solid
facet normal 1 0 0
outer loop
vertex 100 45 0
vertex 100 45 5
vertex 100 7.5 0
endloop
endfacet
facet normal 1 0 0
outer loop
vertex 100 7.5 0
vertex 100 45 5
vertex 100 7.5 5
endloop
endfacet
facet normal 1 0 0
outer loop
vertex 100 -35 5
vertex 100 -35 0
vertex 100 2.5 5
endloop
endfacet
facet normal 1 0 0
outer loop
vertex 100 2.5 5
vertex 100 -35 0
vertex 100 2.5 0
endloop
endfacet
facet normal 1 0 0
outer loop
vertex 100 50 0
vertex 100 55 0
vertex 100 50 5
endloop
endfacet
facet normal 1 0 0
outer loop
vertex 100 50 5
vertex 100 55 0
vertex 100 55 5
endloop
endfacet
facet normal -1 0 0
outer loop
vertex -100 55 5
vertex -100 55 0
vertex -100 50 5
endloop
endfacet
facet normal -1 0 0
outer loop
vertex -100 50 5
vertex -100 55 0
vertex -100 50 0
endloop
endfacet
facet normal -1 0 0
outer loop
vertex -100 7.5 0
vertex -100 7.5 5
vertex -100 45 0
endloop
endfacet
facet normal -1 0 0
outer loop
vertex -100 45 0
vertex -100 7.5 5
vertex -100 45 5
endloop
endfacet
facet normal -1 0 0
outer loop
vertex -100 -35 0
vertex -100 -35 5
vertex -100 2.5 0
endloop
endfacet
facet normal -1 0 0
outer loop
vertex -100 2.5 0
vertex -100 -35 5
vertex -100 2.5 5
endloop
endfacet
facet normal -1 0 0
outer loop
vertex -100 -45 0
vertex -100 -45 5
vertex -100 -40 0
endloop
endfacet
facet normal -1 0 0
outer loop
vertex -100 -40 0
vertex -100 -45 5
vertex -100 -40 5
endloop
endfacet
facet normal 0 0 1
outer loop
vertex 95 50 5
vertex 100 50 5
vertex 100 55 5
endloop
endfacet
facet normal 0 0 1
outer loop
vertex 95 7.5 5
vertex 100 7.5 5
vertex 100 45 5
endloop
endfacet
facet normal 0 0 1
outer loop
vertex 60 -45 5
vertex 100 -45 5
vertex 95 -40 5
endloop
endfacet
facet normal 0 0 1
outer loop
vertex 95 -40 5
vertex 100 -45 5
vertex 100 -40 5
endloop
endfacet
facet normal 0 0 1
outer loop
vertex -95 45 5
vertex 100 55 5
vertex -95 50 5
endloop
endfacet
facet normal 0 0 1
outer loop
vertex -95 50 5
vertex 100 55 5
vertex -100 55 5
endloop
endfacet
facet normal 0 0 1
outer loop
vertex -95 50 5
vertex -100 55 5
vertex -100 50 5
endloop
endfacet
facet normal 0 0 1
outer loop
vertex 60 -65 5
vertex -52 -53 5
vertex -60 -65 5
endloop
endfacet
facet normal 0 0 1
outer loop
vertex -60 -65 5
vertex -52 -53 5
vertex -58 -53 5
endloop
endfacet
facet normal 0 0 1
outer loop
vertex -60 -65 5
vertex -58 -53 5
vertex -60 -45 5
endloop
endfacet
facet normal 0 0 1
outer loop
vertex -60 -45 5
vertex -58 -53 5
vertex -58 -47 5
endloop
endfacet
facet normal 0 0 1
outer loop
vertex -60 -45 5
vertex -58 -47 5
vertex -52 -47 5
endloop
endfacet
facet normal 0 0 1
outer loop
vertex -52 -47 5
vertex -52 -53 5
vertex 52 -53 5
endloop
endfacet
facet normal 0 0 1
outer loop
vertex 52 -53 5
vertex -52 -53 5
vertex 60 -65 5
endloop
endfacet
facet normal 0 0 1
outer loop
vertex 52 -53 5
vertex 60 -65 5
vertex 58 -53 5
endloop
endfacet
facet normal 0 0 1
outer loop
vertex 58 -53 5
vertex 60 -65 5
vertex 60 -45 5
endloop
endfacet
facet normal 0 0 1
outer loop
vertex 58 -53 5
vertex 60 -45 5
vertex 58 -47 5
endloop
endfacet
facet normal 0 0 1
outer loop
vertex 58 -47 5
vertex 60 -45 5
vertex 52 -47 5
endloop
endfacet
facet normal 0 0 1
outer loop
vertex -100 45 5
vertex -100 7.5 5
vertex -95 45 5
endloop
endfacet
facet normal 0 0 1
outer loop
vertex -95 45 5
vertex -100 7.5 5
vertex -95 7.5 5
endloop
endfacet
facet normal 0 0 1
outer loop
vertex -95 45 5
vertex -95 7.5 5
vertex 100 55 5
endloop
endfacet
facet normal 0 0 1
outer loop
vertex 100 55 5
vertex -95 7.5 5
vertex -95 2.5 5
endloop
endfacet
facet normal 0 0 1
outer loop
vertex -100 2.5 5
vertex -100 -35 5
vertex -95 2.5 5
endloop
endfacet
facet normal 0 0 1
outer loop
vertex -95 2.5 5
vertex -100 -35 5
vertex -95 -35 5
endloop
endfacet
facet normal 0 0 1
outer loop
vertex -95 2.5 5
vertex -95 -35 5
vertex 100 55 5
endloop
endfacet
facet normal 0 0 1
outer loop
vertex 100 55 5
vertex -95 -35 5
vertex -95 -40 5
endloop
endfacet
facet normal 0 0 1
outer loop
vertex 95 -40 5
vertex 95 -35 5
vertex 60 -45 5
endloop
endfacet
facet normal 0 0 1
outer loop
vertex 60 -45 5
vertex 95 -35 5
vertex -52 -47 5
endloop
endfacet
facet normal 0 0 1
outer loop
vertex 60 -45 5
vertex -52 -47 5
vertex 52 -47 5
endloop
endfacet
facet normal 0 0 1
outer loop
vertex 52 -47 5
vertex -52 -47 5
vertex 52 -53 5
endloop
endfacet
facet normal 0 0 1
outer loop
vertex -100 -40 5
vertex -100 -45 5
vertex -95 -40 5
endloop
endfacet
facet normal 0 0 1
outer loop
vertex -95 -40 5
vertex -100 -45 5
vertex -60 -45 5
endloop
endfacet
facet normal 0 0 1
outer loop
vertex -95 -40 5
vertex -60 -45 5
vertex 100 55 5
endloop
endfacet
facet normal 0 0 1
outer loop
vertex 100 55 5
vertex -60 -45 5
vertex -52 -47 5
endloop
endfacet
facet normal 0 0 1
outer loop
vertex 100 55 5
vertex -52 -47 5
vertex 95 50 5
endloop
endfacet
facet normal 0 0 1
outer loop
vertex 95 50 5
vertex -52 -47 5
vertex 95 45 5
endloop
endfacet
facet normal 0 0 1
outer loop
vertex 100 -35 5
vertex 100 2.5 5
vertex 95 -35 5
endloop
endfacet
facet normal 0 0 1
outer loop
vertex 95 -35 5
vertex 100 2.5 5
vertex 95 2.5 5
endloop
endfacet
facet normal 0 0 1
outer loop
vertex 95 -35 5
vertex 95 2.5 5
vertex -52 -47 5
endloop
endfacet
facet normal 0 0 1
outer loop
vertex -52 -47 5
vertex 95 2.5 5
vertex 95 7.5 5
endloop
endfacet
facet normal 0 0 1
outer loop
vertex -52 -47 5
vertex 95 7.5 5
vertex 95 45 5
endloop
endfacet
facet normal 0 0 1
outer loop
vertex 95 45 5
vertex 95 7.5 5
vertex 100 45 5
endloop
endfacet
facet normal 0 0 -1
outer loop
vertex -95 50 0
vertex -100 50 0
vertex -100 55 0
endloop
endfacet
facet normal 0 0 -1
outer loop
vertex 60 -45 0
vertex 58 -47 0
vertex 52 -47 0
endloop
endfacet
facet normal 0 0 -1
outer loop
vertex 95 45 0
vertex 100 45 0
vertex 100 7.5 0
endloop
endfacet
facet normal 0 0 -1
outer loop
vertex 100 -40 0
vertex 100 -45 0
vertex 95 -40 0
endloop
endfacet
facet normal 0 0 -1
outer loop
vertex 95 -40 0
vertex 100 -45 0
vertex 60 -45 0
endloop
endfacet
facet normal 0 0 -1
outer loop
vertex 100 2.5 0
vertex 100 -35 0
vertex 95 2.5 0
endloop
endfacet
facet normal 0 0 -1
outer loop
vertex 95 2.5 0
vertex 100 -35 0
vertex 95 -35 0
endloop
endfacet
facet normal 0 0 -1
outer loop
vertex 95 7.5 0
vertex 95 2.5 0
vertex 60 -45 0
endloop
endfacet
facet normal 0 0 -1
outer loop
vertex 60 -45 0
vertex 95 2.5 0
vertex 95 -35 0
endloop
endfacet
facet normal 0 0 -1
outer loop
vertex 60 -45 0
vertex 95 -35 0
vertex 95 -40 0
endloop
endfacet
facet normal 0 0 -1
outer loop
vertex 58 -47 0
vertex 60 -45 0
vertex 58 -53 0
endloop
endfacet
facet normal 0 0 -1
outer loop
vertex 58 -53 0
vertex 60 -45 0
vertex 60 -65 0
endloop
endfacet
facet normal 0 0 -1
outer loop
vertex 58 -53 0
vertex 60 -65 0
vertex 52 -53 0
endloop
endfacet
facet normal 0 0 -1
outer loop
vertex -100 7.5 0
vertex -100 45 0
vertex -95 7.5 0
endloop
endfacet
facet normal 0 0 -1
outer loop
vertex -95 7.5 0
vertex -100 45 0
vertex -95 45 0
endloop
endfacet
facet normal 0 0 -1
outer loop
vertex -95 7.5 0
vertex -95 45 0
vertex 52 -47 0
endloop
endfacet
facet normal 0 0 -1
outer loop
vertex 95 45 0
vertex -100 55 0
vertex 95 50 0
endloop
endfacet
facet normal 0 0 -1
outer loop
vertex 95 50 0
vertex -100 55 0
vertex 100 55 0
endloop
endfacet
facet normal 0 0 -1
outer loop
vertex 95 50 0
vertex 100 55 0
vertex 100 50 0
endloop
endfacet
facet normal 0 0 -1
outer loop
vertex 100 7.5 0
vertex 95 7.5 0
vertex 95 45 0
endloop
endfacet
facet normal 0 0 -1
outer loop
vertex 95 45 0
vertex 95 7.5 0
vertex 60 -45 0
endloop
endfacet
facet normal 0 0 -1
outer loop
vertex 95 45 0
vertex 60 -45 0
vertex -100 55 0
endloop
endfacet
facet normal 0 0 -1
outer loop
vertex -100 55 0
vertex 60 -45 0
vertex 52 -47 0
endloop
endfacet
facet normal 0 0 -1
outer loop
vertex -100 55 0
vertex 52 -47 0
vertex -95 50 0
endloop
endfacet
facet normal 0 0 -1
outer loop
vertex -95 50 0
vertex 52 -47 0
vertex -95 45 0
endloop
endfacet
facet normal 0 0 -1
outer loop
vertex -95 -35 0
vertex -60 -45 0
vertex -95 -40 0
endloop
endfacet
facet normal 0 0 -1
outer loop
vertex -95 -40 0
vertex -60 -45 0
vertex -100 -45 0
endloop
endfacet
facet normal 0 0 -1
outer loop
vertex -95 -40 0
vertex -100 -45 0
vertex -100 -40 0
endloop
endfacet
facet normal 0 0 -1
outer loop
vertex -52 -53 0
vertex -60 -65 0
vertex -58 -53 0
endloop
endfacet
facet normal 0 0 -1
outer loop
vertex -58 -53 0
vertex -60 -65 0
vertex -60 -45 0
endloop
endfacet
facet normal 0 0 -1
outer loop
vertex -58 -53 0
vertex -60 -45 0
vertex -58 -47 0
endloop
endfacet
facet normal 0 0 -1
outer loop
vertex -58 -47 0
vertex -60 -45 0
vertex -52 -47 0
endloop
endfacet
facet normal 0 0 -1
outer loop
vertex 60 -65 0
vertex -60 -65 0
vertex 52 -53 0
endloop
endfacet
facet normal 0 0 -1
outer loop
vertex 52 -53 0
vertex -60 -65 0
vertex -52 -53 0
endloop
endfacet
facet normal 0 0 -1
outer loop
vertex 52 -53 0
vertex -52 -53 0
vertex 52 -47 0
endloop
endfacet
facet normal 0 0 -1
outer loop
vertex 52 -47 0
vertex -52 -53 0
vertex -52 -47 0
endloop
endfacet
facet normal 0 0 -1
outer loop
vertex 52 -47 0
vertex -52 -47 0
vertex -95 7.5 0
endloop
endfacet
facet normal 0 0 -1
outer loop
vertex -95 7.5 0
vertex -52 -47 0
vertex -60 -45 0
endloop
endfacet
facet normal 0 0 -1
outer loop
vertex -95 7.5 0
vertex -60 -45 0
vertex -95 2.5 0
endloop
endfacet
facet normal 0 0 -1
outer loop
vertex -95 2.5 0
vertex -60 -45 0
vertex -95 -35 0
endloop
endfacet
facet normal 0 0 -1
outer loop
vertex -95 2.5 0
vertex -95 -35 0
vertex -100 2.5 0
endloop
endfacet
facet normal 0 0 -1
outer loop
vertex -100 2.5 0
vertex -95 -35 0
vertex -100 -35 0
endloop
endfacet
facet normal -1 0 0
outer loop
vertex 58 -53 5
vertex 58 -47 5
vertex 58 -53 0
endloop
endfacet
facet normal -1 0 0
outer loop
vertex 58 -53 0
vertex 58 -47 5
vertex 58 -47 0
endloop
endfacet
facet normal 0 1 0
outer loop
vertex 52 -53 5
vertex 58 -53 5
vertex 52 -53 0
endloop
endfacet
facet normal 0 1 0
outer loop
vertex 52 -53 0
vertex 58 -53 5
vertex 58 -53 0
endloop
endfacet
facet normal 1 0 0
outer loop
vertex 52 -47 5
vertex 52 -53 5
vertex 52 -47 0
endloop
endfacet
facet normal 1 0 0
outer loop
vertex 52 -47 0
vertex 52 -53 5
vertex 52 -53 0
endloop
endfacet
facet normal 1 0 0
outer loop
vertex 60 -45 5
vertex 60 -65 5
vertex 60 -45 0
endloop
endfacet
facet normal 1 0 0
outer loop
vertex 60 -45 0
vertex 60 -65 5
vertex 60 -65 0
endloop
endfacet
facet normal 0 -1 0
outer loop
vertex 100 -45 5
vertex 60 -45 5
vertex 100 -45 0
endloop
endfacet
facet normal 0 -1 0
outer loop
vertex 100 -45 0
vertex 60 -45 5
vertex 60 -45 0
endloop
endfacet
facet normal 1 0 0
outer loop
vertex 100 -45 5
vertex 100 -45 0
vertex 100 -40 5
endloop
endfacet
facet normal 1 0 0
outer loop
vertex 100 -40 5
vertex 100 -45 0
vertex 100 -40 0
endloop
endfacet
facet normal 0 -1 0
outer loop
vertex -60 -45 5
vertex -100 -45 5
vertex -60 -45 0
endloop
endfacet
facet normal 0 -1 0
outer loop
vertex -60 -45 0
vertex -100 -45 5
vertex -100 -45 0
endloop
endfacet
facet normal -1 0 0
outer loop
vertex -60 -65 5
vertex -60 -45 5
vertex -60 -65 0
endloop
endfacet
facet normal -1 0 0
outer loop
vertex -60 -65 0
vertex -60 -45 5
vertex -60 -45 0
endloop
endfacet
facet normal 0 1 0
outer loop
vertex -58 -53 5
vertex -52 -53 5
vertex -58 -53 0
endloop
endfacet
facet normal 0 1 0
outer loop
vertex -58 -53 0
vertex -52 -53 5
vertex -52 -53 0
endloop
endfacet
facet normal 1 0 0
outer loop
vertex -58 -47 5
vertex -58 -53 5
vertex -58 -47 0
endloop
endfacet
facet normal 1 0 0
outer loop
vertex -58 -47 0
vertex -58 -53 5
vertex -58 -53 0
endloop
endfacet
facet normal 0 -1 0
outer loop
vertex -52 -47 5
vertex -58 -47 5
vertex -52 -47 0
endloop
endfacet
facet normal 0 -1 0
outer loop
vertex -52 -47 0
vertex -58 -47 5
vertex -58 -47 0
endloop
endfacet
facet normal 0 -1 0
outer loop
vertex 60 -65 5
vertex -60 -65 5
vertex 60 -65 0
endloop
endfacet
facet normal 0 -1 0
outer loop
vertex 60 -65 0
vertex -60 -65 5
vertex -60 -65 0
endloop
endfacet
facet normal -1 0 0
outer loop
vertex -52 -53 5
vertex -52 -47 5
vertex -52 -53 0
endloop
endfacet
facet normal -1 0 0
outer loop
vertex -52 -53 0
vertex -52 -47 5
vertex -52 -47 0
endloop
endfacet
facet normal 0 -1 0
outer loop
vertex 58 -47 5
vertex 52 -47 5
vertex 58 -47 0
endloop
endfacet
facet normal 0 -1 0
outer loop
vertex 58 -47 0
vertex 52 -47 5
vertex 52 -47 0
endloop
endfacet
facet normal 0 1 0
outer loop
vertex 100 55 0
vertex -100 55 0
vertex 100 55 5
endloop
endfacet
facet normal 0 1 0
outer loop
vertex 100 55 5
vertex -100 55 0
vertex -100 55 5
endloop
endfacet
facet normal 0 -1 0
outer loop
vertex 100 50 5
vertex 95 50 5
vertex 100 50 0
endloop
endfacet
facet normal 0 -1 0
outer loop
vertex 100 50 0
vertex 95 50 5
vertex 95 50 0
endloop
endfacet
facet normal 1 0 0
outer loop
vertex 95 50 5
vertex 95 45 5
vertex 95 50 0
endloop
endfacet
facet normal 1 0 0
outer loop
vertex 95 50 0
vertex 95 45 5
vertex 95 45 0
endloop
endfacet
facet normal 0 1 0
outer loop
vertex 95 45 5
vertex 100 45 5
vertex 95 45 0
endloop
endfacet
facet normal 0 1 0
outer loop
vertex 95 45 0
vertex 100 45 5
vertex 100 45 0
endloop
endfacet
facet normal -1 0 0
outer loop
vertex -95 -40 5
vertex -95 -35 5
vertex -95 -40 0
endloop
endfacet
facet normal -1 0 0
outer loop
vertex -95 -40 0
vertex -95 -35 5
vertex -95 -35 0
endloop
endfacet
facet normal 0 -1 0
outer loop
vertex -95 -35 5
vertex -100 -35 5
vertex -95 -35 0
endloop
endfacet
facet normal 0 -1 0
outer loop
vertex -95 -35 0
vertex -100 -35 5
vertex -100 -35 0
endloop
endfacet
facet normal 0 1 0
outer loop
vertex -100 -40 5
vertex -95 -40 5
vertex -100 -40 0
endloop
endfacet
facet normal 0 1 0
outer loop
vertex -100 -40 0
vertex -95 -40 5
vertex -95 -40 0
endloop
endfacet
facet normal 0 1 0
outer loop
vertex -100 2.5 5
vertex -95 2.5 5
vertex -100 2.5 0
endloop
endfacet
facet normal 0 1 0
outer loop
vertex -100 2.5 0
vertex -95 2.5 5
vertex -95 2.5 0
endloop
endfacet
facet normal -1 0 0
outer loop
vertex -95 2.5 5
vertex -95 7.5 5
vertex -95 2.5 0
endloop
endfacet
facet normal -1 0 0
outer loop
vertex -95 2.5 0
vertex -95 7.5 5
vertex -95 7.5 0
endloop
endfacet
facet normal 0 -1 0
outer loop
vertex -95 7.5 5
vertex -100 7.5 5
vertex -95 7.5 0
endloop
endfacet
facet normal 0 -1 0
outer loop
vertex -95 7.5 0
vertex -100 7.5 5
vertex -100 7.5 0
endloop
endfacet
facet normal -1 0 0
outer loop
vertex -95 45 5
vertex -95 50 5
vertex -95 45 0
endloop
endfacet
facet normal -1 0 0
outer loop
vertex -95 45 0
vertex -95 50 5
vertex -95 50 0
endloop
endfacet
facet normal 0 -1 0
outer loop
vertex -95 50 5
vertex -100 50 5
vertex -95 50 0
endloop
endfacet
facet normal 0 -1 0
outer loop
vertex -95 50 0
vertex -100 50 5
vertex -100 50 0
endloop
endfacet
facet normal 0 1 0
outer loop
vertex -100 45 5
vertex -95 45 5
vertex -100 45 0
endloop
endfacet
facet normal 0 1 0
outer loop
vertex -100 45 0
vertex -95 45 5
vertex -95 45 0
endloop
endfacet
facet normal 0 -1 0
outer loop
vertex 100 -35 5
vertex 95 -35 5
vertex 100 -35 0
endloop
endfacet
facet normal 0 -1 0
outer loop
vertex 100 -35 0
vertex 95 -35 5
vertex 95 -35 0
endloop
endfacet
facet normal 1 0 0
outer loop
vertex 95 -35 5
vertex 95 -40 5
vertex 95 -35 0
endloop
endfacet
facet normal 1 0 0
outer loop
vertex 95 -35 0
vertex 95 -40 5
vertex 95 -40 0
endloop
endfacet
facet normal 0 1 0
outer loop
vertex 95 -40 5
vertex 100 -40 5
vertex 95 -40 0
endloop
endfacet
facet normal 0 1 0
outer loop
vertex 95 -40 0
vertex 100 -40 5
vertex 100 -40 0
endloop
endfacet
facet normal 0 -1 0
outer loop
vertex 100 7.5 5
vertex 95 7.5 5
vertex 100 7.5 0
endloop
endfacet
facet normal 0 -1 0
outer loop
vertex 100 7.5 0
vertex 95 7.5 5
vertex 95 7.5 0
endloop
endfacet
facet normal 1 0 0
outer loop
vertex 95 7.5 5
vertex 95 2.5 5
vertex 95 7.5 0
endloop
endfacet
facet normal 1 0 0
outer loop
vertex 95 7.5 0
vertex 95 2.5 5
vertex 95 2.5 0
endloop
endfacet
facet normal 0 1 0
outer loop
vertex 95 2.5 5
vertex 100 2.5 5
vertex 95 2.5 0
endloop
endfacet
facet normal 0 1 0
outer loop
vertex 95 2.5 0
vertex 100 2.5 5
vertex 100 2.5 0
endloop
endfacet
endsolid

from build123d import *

# Parameters (mm, degrees)
SKETCH2_W           = 6
SKETCH2_H           = 6
BOSS_EXTRUDE1_DEPTH = 5
SKETCH3_W           = 200
SKETCH3_H           = 20
CUT_EXTRUDE1_DEPTH  = 5
SKETCH4_W           = 5
SKETCH4_H           = 5
CUT_EXTRUDE2_DEPTH  = 5


with BuildPart() as part:
    # Sketch2 → Boss-Extrude1 (new body)
    with BuildSketch(Plane.XY):
        Polygon((-100, 75), (-100, -45), (-60, -45), (-60, -65), (0, -65), (60, -65), (60, -45), (100, -45), (100, 75), align=None)
        with Locations((-55, -50)):
            Rectangle(SKETCH2_W, SKETCH2_H, mode=Mode.SUBTRACT)
        with Locations((55, -50)):
            Rectangle(SKETCH2_W, SKETCH2_H, mode=Mode.SUBTRACT)
    extrude(amount=BOSS_EXTRUDE1_DEPTH)

    # Sketch3 → Cut-Extrude1 (cut)
    with BuildSketch(Plane.XY.offset(5)):
        with Locations((0, 65)):
            Rectangle(SKETCH3_W, SKETCH3_H)
    extrude(amount=-CUT_EXTRUDE1_DEPTH, mode=Mode.SUBTRACT)

    # Sketch4 → Cut-Extrude2 (cut)
    with BuildSketch(Plane(origin=(0, 0, 0), x_dir=(-1, 0, 0), z_dir=(0, 0, -1))):
        with Locations((-97.5, 47.5)):
            Rectangle(SKETCH4_W, SKETCH4_H)
        Polygon((95, 50), (95, 45), (97.5, 45), (100, 45), (100, 50), align=None)
        with Locations((-97.5, 5)):
            Rectangle(SKETCH4_W, SKETCH4_H)
        with Locations((97.5, 5)):
            Rectangle(SKETCH4_W, SKETCH4_H)
        with Locations((-97.5, -37.5)):
            Rectangle(SKETCH4_W, SKETCH4_H)
        Polygon((100, -40), (100, -35), (95, -35), (95, -40), (97.5, -40), align=None)
    extrude(amount=-CUT_EXTRUDE2_DEPTH, mode=Mode.SUBTRACT)


solid = part.part
